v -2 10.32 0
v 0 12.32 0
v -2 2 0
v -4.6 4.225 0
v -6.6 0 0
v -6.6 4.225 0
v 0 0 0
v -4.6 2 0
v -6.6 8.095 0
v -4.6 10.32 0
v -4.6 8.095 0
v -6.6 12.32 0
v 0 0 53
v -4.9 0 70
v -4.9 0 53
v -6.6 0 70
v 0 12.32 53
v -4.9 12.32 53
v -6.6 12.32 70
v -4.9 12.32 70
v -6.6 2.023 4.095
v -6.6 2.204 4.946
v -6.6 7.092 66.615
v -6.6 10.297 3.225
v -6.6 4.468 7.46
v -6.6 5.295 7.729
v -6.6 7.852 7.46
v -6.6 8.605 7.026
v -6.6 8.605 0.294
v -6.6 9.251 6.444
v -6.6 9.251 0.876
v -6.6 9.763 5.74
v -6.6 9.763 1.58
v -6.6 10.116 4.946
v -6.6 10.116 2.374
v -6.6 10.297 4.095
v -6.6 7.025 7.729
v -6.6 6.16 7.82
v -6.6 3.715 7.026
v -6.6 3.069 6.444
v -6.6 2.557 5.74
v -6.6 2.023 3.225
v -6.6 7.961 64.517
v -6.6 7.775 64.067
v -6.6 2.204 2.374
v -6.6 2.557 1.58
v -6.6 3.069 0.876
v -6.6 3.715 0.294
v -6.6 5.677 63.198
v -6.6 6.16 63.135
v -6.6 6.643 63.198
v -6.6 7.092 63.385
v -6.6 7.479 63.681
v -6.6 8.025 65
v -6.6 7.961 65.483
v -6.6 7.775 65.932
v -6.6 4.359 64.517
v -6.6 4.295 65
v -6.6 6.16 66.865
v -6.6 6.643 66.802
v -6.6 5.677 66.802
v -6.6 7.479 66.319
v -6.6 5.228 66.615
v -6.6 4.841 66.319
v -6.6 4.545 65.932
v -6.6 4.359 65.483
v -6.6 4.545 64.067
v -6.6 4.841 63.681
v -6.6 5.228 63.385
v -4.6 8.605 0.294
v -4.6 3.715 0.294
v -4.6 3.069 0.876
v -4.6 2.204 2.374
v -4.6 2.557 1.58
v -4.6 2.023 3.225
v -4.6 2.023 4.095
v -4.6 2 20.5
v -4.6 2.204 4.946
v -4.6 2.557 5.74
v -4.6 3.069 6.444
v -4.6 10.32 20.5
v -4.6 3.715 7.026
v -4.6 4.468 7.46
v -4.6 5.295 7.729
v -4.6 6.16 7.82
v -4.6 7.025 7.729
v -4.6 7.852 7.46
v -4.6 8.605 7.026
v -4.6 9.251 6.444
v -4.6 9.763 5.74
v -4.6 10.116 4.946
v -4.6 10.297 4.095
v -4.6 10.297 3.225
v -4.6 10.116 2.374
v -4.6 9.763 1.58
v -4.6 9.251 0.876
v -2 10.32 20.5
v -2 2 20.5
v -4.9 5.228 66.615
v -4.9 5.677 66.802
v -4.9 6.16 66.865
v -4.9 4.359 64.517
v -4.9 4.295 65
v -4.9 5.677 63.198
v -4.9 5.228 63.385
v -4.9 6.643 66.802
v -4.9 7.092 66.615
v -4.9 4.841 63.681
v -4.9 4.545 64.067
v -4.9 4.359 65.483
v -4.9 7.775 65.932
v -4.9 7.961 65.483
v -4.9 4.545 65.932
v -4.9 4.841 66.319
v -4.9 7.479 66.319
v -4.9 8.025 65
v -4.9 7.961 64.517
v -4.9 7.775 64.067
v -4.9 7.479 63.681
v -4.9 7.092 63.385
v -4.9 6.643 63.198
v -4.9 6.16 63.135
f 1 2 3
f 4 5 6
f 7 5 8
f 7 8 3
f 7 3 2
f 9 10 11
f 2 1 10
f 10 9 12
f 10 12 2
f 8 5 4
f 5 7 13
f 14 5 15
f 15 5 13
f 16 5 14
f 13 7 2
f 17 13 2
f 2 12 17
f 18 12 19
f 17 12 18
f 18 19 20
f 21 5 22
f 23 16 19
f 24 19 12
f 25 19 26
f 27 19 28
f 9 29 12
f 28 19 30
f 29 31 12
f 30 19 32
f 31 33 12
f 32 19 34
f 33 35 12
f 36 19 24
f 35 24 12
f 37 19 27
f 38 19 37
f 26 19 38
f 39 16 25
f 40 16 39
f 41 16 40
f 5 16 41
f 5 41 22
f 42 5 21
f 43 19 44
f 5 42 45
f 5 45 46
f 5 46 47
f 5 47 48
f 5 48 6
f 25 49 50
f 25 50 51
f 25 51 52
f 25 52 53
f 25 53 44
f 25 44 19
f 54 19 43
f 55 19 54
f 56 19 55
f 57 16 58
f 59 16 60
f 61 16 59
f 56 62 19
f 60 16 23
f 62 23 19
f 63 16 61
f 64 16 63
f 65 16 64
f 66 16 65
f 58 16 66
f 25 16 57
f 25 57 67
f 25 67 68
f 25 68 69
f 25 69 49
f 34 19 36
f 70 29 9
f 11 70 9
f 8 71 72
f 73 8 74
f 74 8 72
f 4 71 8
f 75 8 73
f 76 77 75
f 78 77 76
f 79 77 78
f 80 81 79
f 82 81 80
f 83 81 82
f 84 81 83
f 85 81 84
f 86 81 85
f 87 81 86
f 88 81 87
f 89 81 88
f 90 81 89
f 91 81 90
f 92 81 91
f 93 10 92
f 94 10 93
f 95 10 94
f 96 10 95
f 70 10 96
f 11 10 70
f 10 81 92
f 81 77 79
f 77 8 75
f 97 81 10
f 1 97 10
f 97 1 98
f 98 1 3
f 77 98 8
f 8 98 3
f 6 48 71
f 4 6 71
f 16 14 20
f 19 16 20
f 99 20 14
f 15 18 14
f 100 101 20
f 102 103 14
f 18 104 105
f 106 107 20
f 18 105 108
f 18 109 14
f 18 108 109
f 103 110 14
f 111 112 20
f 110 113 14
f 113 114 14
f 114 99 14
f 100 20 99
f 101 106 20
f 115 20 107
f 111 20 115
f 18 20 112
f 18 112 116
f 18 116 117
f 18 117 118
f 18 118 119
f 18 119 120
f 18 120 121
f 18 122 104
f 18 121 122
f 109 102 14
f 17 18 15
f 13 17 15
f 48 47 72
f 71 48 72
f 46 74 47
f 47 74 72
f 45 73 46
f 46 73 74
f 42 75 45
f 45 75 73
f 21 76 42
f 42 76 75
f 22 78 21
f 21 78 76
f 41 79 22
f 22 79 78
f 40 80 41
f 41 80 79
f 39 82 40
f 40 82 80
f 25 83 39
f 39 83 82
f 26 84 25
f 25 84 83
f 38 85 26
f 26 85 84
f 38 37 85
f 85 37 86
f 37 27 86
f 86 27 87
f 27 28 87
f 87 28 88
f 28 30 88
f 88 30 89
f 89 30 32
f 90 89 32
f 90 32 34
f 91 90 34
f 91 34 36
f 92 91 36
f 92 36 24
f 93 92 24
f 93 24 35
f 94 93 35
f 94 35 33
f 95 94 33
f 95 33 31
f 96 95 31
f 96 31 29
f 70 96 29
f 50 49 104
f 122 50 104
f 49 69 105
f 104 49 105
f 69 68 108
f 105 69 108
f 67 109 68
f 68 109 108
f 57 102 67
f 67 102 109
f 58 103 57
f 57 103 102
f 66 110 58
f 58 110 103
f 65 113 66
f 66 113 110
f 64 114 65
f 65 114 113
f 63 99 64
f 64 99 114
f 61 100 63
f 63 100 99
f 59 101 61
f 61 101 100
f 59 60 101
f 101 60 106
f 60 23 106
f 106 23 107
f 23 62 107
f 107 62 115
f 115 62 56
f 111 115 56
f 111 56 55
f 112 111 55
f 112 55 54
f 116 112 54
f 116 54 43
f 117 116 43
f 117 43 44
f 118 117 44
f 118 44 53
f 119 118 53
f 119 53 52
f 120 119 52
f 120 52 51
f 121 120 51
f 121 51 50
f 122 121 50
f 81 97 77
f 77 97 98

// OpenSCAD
head_diameter = 7.32;
head_radius = head_diameter / 2;
head_height = 4.3;
arm_height = 1.6;
arm_length = 20;
offset=0.1;
wire_diameter=2.73;
wire_radius = 0.5*wire_diameter;


wall_width = 2;
give = 0.5;

component_width = head_diameter + 2*give + 2*wall_width;
component_height = arm_height + 2*give + 2*wall_width;
component_length = 70;

rotate(-90, [0,1,0]){
difference(){
	cube([component_length, component_width, component_height]);
	translate([-offset, wall_width, wall_width]){
		cube([
			arm_length+offset+give,
			head_diameter+2*give,
			arm_height+2*give
		]);
	}
	translate([head_radius, 0.5*component_width, arm_height+2*give]){
		cylinder(r=head_radius+give, h=component_height, $fs=0.5);
	}
	translate([component_length-(17),-offset,-offset]){
		cube([component_length, component_width+2*offset, component_height-arm_height]);
		translate([12,0.5*component_width+offset,0]){
			cylinder(r=wire_radius+give, h=component_height+2*offset, $fs=0.5);
		}
	}
}

}
